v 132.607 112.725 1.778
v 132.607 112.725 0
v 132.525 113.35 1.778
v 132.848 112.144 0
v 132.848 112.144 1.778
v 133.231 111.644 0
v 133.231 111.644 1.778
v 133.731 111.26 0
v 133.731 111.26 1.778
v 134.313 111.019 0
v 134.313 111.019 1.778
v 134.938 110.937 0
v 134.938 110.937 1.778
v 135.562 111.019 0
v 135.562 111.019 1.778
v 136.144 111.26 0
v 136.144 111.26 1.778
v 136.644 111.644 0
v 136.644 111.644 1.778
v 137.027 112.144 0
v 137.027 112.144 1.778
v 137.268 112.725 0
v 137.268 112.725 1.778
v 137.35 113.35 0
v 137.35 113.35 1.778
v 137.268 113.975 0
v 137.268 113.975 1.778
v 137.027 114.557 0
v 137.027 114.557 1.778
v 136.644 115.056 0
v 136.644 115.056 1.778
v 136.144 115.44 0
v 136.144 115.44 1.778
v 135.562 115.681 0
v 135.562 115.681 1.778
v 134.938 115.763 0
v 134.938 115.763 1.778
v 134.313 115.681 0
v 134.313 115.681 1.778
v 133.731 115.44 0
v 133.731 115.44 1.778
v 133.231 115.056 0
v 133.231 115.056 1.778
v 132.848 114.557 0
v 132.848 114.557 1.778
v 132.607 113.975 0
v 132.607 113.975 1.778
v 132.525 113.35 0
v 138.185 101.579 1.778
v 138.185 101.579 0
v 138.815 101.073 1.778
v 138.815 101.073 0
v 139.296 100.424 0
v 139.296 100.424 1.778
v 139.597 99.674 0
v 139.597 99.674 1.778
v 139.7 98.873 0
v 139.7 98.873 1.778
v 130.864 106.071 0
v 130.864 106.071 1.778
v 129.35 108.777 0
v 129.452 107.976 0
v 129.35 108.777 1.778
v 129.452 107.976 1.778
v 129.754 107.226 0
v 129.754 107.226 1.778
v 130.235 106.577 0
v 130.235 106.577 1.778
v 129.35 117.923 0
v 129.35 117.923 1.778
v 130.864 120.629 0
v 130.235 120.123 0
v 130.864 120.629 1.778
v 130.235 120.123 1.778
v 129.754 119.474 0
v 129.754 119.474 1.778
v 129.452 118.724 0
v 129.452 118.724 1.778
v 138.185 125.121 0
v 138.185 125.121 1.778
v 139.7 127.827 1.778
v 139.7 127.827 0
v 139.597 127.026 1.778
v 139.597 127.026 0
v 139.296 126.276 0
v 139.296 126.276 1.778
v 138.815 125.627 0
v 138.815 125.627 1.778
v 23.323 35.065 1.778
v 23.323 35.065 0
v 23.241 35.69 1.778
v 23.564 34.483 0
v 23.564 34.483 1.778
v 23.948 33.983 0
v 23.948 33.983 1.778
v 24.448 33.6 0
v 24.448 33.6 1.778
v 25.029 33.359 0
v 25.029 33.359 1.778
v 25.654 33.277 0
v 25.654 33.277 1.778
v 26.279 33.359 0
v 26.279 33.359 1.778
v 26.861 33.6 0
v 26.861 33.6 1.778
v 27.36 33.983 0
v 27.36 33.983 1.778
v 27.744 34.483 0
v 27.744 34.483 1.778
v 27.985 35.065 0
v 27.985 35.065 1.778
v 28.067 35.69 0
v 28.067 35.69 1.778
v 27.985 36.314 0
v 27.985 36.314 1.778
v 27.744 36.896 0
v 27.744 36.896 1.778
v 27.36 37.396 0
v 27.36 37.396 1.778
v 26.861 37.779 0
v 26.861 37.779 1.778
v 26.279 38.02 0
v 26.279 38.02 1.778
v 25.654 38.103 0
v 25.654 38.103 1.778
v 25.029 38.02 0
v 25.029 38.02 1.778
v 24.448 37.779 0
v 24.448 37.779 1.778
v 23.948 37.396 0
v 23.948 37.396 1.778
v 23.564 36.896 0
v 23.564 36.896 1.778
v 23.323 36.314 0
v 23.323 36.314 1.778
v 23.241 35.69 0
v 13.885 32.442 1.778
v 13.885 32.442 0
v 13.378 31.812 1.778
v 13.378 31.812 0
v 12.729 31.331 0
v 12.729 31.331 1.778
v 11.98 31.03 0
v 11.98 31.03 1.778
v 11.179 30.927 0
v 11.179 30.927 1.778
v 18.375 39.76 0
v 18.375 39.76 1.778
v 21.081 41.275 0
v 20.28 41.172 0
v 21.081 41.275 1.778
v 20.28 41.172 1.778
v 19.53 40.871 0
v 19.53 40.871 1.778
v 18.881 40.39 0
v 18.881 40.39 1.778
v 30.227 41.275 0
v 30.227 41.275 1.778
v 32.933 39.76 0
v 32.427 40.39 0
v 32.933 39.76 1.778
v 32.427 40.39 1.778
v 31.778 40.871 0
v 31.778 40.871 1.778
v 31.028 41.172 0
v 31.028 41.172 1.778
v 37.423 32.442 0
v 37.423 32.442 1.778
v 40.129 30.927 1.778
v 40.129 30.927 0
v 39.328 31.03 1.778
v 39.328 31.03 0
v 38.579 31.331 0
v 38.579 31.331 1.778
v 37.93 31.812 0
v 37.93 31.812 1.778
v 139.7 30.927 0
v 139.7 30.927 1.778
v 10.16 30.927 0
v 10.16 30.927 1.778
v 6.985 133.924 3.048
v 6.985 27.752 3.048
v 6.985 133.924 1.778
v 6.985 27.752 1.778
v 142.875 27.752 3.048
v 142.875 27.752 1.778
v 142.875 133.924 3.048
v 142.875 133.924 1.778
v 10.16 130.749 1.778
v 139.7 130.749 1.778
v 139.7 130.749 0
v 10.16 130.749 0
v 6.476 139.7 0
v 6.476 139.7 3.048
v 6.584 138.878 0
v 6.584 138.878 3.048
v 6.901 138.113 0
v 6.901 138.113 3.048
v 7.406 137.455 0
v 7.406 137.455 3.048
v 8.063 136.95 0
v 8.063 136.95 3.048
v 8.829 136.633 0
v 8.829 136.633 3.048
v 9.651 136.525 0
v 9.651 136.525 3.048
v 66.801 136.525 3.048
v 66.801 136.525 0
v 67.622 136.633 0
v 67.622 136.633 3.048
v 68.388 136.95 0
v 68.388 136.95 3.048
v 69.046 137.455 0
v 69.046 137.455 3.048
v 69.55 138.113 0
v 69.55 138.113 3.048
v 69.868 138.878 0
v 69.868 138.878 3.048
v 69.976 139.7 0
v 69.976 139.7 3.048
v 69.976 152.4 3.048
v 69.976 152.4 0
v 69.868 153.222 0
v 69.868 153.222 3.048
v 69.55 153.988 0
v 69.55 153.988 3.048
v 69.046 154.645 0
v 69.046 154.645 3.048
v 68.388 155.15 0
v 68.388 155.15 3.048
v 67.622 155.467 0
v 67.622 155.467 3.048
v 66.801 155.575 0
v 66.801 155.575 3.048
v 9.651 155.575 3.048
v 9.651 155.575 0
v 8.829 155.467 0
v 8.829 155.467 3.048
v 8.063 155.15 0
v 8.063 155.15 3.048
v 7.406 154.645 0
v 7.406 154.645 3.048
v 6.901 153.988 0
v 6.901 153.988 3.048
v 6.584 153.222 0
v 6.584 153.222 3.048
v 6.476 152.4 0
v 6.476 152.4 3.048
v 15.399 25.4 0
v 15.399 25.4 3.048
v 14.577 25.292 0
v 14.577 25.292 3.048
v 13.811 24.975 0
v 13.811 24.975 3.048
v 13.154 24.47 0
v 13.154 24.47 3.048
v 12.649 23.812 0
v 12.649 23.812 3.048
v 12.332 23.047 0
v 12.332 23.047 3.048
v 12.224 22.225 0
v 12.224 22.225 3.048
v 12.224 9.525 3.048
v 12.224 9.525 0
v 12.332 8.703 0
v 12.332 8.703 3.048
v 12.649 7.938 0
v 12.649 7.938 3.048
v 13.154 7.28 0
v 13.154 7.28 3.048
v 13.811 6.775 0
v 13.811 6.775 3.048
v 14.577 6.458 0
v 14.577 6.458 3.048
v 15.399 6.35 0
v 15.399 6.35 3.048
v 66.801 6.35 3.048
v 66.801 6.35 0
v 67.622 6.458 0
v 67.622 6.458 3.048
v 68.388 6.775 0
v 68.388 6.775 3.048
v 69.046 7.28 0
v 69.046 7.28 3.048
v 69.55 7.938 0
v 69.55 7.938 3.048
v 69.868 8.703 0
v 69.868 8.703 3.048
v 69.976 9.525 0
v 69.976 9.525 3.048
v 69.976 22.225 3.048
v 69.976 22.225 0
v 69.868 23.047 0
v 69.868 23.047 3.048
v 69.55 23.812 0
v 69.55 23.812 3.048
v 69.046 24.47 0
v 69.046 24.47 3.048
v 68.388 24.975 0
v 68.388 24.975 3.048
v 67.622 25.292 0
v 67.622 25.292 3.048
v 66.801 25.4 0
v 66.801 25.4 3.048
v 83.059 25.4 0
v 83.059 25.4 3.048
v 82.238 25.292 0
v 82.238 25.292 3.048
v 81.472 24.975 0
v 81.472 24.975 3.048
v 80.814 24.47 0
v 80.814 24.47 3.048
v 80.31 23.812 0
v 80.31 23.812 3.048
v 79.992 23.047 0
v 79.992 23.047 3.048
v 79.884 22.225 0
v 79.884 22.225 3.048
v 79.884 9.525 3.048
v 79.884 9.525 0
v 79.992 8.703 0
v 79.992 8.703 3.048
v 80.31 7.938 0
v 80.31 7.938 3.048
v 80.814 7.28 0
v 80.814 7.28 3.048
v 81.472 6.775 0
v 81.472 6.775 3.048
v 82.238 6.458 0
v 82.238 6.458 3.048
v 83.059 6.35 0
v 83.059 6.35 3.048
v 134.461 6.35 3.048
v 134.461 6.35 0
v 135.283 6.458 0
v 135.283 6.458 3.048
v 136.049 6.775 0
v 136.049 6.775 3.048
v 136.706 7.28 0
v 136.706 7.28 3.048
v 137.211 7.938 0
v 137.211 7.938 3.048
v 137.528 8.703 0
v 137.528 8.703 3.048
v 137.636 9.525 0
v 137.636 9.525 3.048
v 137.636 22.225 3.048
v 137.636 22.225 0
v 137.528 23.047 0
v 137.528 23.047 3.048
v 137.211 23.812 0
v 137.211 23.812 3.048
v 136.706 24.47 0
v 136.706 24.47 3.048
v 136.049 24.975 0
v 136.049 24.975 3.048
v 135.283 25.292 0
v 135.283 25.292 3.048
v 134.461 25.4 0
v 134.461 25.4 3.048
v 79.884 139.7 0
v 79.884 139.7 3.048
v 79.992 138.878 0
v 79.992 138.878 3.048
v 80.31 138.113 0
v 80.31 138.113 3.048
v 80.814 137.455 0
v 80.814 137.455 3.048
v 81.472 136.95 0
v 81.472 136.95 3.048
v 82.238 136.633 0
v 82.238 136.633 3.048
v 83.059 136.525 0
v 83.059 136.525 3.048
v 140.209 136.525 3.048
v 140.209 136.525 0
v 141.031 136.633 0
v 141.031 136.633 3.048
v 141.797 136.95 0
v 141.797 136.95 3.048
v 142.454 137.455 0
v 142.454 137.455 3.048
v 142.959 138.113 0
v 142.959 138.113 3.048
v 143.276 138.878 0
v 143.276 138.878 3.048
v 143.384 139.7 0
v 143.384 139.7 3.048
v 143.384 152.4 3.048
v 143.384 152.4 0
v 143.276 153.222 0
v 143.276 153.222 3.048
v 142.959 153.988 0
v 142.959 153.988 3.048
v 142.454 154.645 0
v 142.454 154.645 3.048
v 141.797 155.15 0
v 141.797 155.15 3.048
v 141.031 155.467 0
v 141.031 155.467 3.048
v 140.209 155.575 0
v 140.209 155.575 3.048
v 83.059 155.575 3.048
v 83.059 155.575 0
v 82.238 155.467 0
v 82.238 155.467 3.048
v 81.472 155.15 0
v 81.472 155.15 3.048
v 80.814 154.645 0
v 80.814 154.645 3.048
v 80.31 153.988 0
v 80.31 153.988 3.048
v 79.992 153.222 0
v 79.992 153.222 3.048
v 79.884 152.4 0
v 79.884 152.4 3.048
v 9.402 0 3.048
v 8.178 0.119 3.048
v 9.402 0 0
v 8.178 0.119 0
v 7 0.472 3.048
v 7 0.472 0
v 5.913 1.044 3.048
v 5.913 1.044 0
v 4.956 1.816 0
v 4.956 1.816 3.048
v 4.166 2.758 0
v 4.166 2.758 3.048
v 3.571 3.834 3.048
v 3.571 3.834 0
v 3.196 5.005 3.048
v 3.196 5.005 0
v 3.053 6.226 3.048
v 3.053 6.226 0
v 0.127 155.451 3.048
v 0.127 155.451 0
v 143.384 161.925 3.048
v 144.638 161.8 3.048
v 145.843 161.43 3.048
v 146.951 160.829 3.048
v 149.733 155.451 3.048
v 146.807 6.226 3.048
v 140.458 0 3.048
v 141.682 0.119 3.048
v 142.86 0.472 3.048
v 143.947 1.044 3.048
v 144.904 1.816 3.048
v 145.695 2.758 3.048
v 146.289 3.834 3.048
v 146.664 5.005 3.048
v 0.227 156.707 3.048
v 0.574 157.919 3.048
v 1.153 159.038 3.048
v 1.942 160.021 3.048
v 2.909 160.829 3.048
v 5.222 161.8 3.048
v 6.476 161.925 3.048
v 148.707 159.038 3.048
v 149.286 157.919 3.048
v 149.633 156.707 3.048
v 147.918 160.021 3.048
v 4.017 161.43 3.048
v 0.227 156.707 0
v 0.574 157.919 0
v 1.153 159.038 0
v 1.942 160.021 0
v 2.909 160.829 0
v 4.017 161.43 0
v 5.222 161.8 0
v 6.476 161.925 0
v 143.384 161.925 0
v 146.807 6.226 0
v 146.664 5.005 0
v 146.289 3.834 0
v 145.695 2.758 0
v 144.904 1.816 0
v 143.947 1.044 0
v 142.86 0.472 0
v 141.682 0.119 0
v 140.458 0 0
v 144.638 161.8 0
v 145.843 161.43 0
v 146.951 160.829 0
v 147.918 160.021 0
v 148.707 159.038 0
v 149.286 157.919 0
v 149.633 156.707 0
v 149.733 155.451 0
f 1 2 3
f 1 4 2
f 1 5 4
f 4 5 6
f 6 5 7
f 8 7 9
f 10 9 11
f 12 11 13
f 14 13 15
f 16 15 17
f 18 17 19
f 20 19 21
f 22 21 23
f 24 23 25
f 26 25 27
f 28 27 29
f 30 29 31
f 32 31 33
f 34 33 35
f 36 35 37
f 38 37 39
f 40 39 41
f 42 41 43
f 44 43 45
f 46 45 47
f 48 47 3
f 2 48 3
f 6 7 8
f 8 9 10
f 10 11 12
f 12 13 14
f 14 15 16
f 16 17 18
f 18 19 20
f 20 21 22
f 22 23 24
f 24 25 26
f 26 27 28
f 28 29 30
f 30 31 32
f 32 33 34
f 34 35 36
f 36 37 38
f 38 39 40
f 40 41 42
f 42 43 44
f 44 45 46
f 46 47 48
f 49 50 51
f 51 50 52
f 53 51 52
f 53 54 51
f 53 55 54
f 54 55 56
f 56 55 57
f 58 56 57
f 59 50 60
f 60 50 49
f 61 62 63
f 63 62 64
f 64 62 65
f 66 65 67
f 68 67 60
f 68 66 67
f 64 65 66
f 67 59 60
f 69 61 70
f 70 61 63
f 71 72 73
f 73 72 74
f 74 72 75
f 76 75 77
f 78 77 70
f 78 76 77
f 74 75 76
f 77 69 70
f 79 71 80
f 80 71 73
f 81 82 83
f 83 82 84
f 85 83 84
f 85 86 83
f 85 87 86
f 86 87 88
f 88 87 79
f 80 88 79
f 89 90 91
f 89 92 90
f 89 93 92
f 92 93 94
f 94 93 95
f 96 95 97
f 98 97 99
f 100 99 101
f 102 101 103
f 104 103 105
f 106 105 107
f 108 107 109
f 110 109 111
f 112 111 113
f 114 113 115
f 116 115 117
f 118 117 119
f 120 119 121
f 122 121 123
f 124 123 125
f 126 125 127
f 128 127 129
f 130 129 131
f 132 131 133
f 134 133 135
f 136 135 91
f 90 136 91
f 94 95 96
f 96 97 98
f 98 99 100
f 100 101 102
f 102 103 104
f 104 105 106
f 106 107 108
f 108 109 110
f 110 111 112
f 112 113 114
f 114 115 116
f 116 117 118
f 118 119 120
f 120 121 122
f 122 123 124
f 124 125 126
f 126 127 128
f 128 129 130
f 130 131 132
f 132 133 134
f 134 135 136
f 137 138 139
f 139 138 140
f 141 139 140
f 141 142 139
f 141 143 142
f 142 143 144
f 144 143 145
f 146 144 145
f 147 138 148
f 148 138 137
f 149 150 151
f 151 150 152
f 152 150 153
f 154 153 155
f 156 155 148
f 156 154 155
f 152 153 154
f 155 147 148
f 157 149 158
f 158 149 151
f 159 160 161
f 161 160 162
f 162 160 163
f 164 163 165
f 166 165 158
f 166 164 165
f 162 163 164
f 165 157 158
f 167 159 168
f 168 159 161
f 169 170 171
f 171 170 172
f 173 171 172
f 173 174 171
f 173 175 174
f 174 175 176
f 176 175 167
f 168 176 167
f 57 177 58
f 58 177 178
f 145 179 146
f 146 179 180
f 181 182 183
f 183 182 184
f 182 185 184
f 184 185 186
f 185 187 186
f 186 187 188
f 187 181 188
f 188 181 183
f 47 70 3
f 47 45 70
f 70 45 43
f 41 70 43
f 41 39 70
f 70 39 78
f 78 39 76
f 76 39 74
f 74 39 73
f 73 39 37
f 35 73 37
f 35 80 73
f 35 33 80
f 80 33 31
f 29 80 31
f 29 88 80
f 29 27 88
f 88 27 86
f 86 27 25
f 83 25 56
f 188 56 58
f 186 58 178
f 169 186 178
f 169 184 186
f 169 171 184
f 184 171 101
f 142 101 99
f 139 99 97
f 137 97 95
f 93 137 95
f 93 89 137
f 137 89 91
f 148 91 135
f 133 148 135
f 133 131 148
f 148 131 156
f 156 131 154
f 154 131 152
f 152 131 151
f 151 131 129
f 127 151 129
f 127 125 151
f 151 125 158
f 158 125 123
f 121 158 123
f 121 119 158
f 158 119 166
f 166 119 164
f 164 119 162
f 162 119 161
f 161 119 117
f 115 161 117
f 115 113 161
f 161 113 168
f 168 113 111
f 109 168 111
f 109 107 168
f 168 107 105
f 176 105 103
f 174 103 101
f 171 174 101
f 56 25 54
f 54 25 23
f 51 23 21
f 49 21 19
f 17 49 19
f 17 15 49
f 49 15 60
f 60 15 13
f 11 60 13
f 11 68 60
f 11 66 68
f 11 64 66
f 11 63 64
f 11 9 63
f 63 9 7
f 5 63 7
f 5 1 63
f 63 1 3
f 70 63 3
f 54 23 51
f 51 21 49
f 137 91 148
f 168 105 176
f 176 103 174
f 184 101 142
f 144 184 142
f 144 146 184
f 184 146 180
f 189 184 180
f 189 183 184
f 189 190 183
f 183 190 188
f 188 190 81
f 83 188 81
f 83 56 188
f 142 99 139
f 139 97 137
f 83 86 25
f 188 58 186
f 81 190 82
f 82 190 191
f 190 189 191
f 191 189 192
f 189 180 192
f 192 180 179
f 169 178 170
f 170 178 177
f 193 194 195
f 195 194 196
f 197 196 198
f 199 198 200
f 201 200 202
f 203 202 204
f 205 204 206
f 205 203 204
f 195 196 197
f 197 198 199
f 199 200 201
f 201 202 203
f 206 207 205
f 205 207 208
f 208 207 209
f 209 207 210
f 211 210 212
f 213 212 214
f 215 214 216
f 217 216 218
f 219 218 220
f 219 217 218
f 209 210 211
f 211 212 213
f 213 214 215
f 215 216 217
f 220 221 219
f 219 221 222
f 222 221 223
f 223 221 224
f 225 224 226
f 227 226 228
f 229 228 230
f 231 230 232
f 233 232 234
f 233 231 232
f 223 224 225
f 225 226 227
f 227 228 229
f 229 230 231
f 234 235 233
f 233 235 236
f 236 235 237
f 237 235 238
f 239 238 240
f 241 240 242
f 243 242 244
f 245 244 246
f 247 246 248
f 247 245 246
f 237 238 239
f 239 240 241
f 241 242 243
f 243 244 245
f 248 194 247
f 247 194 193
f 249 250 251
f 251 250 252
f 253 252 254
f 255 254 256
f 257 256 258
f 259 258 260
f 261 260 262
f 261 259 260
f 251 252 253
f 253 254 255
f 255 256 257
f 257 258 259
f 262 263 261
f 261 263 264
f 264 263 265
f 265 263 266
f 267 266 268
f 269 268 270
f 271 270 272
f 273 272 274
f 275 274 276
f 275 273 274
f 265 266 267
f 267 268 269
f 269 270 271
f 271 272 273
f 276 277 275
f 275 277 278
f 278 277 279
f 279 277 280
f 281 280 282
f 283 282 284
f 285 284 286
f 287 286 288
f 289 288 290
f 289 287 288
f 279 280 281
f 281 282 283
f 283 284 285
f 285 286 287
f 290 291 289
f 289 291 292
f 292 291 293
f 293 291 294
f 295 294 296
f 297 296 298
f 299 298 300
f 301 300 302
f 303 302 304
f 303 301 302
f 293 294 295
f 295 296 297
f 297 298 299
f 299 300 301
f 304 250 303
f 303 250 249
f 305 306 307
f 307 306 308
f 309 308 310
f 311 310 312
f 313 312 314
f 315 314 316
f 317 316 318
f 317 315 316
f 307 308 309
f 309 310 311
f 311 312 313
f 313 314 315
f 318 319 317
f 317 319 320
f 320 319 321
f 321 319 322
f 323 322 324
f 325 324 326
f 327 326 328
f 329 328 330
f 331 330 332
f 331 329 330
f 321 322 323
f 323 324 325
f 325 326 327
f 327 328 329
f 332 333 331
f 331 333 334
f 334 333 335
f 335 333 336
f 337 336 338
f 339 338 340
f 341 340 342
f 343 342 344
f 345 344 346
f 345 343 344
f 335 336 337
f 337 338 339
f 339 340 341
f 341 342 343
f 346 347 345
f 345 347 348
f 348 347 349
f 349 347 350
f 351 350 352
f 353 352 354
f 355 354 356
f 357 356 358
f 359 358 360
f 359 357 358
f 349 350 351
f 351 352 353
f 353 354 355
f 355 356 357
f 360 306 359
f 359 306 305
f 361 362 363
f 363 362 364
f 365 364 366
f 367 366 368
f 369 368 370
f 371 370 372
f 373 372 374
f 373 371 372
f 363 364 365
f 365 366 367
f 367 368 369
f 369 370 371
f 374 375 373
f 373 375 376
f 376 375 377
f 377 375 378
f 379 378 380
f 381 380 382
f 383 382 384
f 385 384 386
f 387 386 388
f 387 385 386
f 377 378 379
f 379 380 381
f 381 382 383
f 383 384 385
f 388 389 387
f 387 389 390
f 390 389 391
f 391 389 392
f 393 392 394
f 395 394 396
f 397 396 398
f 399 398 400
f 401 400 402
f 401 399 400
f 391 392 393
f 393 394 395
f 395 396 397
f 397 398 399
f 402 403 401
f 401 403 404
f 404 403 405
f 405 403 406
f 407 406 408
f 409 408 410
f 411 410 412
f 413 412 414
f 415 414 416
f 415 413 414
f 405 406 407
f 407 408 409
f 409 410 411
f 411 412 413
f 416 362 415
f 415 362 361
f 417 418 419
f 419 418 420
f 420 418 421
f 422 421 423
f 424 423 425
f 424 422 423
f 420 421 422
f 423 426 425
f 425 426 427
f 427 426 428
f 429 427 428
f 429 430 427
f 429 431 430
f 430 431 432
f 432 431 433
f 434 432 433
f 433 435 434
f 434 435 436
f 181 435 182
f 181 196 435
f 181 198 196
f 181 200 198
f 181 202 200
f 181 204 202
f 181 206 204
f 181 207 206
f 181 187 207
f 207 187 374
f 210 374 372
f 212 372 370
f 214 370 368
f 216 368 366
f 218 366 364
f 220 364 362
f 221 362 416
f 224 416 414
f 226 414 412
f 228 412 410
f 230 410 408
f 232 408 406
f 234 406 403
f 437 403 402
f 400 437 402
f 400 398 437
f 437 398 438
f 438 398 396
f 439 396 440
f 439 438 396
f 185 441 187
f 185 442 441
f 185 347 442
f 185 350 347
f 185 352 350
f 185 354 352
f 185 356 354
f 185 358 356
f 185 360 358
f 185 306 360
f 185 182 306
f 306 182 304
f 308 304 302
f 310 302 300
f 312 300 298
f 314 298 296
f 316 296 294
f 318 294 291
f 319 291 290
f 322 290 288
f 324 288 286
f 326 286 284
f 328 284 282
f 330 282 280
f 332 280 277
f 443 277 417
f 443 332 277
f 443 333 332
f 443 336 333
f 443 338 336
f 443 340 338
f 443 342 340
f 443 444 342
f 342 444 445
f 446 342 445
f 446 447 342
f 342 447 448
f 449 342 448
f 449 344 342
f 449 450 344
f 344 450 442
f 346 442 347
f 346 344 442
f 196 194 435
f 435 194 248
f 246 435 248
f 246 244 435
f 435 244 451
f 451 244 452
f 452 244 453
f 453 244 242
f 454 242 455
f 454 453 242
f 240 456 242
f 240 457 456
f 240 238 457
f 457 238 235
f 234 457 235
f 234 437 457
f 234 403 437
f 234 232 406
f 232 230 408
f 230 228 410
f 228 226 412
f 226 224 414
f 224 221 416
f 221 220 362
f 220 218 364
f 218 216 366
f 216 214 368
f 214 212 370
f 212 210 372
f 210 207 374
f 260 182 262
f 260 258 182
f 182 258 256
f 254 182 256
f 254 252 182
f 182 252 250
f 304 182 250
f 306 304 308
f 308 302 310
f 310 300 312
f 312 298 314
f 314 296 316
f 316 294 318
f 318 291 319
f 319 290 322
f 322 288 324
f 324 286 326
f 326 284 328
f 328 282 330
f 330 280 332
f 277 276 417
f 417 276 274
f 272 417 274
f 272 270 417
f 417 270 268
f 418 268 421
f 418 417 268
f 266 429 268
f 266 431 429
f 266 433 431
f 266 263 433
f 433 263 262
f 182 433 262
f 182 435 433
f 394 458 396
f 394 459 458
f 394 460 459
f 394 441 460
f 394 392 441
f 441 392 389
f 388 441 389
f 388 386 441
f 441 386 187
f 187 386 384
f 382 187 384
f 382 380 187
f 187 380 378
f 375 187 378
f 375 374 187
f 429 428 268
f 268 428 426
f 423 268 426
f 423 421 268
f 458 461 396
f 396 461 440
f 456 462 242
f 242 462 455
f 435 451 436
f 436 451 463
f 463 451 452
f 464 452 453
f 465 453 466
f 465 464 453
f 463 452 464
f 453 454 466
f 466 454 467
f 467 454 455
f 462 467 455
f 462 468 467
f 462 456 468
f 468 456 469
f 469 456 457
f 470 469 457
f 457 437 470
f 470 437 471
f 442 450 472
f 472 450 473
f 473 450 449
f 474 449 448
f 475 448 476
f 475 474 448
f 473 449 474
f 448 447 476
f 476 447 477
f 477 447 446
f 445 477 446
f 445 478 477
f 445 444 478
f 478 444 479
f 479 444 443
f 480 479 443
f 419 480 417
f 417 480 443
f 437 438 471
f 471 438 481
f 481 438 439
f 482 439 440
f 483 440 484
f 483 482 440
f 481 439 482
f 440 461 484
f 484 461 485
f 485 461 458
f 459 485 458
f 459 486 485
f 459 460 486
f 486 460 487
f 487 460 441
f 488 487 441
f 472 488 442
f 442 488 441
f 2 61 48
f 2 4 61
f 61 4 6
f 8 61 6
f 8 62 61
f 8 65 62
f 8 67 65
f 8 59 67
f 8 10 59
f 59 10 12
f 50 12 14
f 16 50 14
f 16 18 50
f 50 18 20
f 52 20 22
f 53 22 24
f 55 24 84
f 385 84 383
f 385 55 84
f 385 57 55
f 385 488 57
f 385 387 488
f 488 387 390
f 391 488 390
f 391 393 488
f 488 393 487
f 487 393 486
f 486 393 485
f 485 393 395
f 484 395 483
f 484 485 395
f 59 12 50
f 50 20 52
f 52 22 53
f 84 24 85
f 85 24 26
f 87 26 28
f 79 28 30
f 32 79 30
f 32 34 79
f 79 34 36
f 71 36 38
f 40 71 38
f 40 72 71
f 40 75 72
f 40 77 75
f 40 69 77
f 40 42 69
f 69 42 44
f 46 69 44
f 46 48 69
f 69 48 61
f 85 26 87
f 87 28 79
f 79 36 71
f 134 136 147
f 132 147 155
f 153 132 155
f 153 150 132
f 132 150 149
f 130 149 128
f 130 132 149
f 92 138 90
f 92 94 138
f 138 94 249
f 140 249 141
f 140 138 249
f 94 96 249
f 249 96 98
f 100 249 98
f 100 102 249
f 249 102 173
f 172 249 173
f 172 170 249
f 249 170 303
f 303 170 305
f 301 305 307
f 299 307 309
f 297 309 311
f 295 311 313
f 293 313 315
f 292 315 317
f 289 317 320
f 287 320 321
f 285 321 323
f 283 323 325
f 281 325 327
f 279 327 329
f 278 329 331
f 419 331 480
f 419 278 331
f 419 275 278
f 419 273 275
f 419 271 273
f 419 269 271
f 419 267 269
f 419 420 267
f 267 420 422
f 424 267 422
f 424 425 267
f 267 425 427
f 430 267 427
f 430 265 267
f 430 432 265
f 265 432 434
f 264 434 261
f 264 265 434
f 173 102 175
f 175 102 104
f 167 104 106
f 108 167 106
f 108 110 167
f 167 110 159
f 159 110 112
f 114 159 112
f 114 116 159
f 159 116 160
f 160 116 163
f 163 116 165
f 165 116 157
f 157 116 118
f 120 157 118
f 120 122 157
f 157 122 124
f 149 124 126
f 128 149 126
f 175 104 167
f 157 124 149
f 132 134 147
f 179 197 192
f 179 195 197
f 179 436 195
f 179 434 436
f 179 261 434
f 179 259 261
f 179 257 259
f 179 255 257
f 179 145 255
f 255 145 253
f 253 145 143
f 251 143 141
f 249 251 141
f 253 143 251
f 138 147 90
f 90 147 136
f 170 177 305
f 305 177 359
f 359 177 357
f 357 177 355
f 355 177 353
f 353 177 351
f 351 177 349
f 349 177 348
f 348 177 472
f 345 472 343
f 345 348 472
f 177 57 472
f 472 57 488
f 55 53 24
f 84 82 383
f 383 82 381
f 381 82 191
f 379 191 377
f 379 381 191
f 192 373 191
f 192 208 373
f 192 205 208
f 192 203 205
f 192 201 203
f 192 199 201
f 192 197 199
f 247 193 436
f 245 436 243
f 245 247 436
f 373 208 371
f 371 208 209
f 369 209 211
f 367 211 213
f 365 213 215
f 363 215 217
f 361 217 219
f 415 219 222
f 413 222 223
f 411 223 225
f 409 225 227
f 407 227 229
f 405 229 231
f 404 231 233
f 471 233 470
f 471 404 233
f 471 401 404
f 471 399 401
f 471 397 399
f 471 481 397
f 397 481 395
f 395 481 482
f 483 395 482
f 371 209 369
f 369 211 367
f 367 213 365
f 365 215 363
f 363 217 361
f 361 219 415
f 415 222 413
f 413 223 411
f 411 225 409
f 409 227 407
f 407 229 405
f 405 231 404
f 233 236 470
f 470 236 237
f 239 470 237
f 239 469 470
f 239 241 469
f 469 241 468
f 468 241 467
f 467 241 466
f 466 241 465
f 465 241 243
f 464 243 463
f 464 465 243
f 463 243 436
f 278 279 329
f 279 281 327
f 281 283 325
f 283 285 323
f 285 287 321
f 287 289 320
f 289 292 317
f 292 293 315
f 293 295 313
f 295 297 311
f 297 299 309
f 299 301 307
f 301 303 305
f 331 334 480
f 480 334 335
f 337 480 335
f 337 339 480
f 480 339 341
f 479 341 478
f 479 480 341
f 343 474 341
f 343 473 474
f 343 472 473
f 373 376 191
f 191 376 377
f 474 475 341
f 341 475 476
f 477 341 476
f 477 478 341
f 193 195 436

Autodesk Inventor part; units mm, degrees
ref_plane "YZ Plane" through (0, 0, 0) normal (1, 0, 0) x (0, 1, 0)
ref_plane "XZ Plane" through (0, 0, 0) normal (0, 1, 0) x (-1, 0, 0)
ref_plane "XY Plane" through (0, 0, 0) normal (0, 0, 1) x (1, 0, 0)
sketch "Sketch1" plane through (0, 0, 0) normal (0, 0, 1) x (1, 0, 0)
  line L0 (3.175, 0) -> (146.685, 0)
  line L1 (149.86, 161.925) -> (0, 161.925)
  line L2 (0, 161.925) -> (3.175, 0)
  line L3 (149.86, 161.925) -> (146.685, 0)
  point P0 (0, 0)
  dimension "d74" = 161.925
  dimension "d75" = 143.51
  dimension "d76" = 149.86
extrude "Extrusion1" add sketch "Sketch1" along normal blind 3.048
fillet "Fillet1" radius 6.35 3 edges at (149.86, 161.925, 1.524) (146.685, 0, 1.524) (0, 161.925, 1.524)
fillet "Fillet4" radius 6.35 1 edges at (3.175, 0, 1.524)
sketch "Sketch21" plane through (0, 0, 3.048) normal (0, 0, 1) x (1, 0, 0)
  arc A0 (149.733, 155.4505) -> (143.3843, 161.925) centre (143.3843, 155.575) ccw projected
  line L0 (143.3843, 139.7) -> (143.3843, 152.4)
  line L1 (6.4757, 152.4) -> (6.4757, 139.7)
  line L2 (79.8843, 152.4) -> (79.8843, 139.7)
  line L3 (69.9757, 152.4) -> (69.9757, 139.7)
  line L4 (140.2093, 155.575) -> (83.0593, 155.575)
  line L5 (66.8007, 155.575) -> (9.6507, 155.575)
  line L6 (9.6507, 136.525) -> (66.8007, 136.525)
  line L7 (83.0593, 136.525) -> (140.2093, 136.525)
  arc A1 (9.6507, 155.575) -> (6.4757, 152.4) centre (9.6507, 152.4) ccw
  arc A2 (6.4757, 139.7) -> (9.6507, 136.525) centre (9.6507, 139.7) ccw
  arc A3 (66.8007, 136.525) -> (69.9757, 139.7) centre (66.8007, 139.7) ccw
  arc A4 (69.9757, 152.4) -> (66.8007, 155.575) centre (66.8007, 152.4) ccw
  arc A5 (83.0593, 155.575) -> (79.8843, 152.4) centre (83.0593, 152.4) ccw
  arc A6 (79.8843, 139.7) -> (83.0593, 136.525) centre (83.0593, 139.7) ccw
  arc A7 (140.2093, 136.525) -> (143.3843, 139.7) centre (140.2093, 139.7) ccw
  arc A8 (143.3843, 152.4) -> (140.2093, 155.575) centre (140.2093, 152.4) ccw
  line L8 (137.6362, 22.225) -> (137.6362, 9.525)
  line L9 (12.2237, 9.525) -> (12.2237, 22.225)
  line L10 (12.2237, 25.4) -> (137.6362, 6.35) construction
  line L11 (137.6362, 25.4) -> (12.2237, 6.35) construction
  line L12 (69.9757, 9.525) -> (69.9757, 22.225)
  line L13 (79.8843, 22.225) -> (79.8843, 9.525)
  line L14 (79.8843, 6.35) -> (69.9757, 25.4) construction
  line L15 (69.9757, 6.35) -> (79.8843, 25.4) construction
  line L16 (15.3987, 25.4) -> (66.8007, 25.4)
  line L17 (83.0593, 25.4) -> (134.4612, 25.4)
  line L18 (134.4612, 6.35) -> (83.0593, 6.35)
  line L19 (66.8007, 6.35) -> (15.3987, 6.35)
  arc A9 (15.3987, 25.4) -> (12.2237, 22.225) centre (15.3987, 22.225) ccw
  arc A10 (12.2237, 9.525) -> (15.3987, 6.35) centre (15.3987, 9.525) ccw
  arc A11 (66.8007, 6.35) -> (69.9757, 9.525) centre (66.8007, 9.525) ccw
  arc A12 (69.9757, 22.225) -> (66.8007, 25.4) centre (66.8007, 22.225) ccw
  arc A13 (83.0593, 25.4) -> (79.8843, 22.225) centre (83.0593, 22.225) ccw
  arc A14 (137.6362, 22.225) -> (134.4612, 25.4) centre (134.4612, 22.225) ccw
  arc A15 (134.4612, 6.35) -> (137.6362, 9.525) centre (134.4612, 9.525) ccw
  arc A16 (79.8843, 9.525) -> (83.0593, 6.35) centre (83.0593, 9.525) ccw
  point P0 (0, 0)
  point P1 (74.93, 15.875)
  dimension "d97" = 3.175
  dimension "d111" = 19.05
  dimension "d112" = 19.05
  dimension "d113" = 63.5
  dimension "d114" = 63.5
  dimension "d131" = 9.9085
  dimension "d141" = 19.05
  dimension "d142" = 3.175
extrude "Extrusion20" cut sketch "Sketch21" against normal blind 3.048
sketch "Sketch23" plane through (0, 0, 3.048) normal (0, 0, 1) x (1, 0, 0)
  line L0 (142.875, 27.752) -> (6.985, 27.752)
  line L1 (6.985, 27.752) -> (6.985, 133.924)
  line L2 (6.985, 133.924) -> (142.875, 133.924)
  line L3 (142.875, 133.924) -> (142.875, 27.752)
  line L4 (142.875, 27.752) -> (6.985, 133.924) construction
  line L5 (6.985, 27.752) -> (142.875, 133.924) construction
  line L6 (10.16, 130.749) -> (139.7, 130.749)
  line L7 (10.16, 30.927) -> (10.16, 130.749)
  line L8 (139.7, 30.927) -> (10.16, 30.927)
  line L9 (139.7, 130.749) -> (139.7, 30.927)
  point P0 (0, 0)
  point P1 (74.93, 80.838)
  dimension "d129" = 135.89
  dimension "d130" = 106.172
  dimension "d132" = 3.175
  dimension "d133" = 3.175
  dimension "d134" = 3.175
  dimension "d135" = 3.175
extrude "Extrusion22" cut sketch "Sketch23" against normal blind 3.048 contours L6 L9 L8 L7
sketch "Sketch25" plane through (0, 0, 3.048) normal (0, 0, 1) x (1, 0, 0)
  line L0 (10.16, 30.927) -> (10.16, 130.749) projected
  line L1 (10.16, 130.749) -> (139.7, 130.749) projected
  line L2 (139.7, 130.749) -> (139.7, 30.927) projected
  line L3 (139.7, 30.927) -> (10.16, 30.927) projected
  line L4 (142.875, 133.924) -> (6.985, 133.924)
  line L5 (6.985, 133.924) -> (6.985, 27.752)
  line L6 (6.985, 27.752) -> (142.875, 27.752)
  line L7 (142.875, 27.752) -> (142.875, 133.924)
  point P0 (0, 0)
  dimension "d138" = 3.175
extrude "Extrusion23" cut sketch "Sketch25" against normal blind 1.27
sketch "Sketch34" plane through (0, 0, 0) normal (0, 0, -1) x (-1, 0, 0)
  line L0 (-10.16, 130.749) -> (-10.16, 30.927) projected
  line L1 (-10.16, 30.927) -> (-139.7, 30.927) projected
  line L2 (-139.7, 30.927) -> (-139.7, 130.749) projected
  line L3 (-139.7, 130.749) -> (-10.16, 130.749) projected
  line L4 (-6.985, 133.924) -> (-6.985, 27.752)
  line L5 (-6.985, 27.752) -> (-142.875, 27.752)
  line L6 (-142.875, 27.752) -> (-142.875, 133.924)
  line L7 (-142.875, 133.924) -> (-6.985, 133.924)
  circle A0 centre (-134.9375, 113.35) radius 2.413
  line L8 (-129.3495, 117.923) -> (-129.3495, 108.777)
  line L9 (-130.8642, 120.6293) -> (-138.1853, 125.1208)
  line L10 (-130.8642, 106.0708) -> (-138.1853, 101.5793)
  line L11 (-139.7, 127.827) -> (-139.7, 130.749)
  line L12 (-139.7, 98.873) -> (-139.7, 93.6625)
  arc A1 (-139.7, 127.827) -> (-138.1853, 125.1208) centre (-136.525, 127.827) ccw
  arc A2 (-129.3495, 117.923) -> (-130.8642, 120.6293) centre (-132.5245, 117.923) ccw
  arc A3 (-130.8642, 106.0708) -> (-129.3495, 108.777) centre (-132.5245, 108.777) ccw
  arc A4 (-138.1853, 101.5793) -> (-139.7, 98.873) centre (-136.525, 98.873) ccw
  line L13 (-139.7, 127.827) -> (-139.7, 98.873)
  circle A5 centre (-25.654, 35.6895) radius 2.413
  line L14 (-21.081, 41.275) -> (-30.227, 41.275)
  line L15 (-32.9333, 39.7603) -> (-37.4232, 32.4417)
  line L16 (-18.3747, 39.7603) -> (-13.8848, 32.4417)
  line L17 (-40.1295, 30.927) -> (-42.8625, 30.927)
  line L18 (-11.1785, 30.927) -> (-10.16, 30.927)
  arc A6 (-40.1295, 30.927) -> (-37.4232, 32.4417) centre (-40.1295, 34.102) ccw
  arc A7 (-13.8848, 32.4417) -> (-11.1785, 30.927) centre (-11.1785, 34.102) ccw
  arc A8 (-18.3747, 39.7603) -> (-21.081, 41.275) centre (-21.081, 38.1) ccw
  arc A9 (-30.227, 41.275) -> (-32.9333, 39.7603) centre (-30.227, 38.1) ccw
  line L19 (-40.1295, 30.927) -> (-11.1785, 30.927)
  point P0 (0, 0)
  point P1 (-129.3495, 119.7)
  point P2 (-129.3495, 107)
  point P3 (-139.7, 126.05)
  point P4 (-139.7, 100.65)
  point P5 (-19.304, 41.275)
  point P6 (-32.004, 41.275)
  point P7 (-38.3525, 30.927)
  point P8 (-12.9555, 30.927)
  dimension "d223" = 3.175
  dimension "d226" = 4.826
  dimension "d227" = 20.574
  dimension "d228" = 7.9375
  dimension "d231" = 12.7
  dimension "d235" = 3.175
  dimension "d240" = 4.826
  dimension "d241" = 18.669
  dimension "d242" = 7.9375
  dimension "d244" = 12.7
  dimension "d247" = 3.175
  dimension "d248" = 8.127
  dimension "d249" = 8.127
  dimension "d250" = 4.573
  dimension "d251" = 4.573
  dimension "d253" = 5.588
  dimension "d254" = 4.573
  dimension "d255" = 4.573
extrude "Extrusion29" add sketch "Sketch34" against normal blind 1.778 contours L1 A6 L15 A9 L14 A8 L16 A7 | A1 L9 A2 L8 A3 L10 A4 L2
properties part number "control pod layer b"
